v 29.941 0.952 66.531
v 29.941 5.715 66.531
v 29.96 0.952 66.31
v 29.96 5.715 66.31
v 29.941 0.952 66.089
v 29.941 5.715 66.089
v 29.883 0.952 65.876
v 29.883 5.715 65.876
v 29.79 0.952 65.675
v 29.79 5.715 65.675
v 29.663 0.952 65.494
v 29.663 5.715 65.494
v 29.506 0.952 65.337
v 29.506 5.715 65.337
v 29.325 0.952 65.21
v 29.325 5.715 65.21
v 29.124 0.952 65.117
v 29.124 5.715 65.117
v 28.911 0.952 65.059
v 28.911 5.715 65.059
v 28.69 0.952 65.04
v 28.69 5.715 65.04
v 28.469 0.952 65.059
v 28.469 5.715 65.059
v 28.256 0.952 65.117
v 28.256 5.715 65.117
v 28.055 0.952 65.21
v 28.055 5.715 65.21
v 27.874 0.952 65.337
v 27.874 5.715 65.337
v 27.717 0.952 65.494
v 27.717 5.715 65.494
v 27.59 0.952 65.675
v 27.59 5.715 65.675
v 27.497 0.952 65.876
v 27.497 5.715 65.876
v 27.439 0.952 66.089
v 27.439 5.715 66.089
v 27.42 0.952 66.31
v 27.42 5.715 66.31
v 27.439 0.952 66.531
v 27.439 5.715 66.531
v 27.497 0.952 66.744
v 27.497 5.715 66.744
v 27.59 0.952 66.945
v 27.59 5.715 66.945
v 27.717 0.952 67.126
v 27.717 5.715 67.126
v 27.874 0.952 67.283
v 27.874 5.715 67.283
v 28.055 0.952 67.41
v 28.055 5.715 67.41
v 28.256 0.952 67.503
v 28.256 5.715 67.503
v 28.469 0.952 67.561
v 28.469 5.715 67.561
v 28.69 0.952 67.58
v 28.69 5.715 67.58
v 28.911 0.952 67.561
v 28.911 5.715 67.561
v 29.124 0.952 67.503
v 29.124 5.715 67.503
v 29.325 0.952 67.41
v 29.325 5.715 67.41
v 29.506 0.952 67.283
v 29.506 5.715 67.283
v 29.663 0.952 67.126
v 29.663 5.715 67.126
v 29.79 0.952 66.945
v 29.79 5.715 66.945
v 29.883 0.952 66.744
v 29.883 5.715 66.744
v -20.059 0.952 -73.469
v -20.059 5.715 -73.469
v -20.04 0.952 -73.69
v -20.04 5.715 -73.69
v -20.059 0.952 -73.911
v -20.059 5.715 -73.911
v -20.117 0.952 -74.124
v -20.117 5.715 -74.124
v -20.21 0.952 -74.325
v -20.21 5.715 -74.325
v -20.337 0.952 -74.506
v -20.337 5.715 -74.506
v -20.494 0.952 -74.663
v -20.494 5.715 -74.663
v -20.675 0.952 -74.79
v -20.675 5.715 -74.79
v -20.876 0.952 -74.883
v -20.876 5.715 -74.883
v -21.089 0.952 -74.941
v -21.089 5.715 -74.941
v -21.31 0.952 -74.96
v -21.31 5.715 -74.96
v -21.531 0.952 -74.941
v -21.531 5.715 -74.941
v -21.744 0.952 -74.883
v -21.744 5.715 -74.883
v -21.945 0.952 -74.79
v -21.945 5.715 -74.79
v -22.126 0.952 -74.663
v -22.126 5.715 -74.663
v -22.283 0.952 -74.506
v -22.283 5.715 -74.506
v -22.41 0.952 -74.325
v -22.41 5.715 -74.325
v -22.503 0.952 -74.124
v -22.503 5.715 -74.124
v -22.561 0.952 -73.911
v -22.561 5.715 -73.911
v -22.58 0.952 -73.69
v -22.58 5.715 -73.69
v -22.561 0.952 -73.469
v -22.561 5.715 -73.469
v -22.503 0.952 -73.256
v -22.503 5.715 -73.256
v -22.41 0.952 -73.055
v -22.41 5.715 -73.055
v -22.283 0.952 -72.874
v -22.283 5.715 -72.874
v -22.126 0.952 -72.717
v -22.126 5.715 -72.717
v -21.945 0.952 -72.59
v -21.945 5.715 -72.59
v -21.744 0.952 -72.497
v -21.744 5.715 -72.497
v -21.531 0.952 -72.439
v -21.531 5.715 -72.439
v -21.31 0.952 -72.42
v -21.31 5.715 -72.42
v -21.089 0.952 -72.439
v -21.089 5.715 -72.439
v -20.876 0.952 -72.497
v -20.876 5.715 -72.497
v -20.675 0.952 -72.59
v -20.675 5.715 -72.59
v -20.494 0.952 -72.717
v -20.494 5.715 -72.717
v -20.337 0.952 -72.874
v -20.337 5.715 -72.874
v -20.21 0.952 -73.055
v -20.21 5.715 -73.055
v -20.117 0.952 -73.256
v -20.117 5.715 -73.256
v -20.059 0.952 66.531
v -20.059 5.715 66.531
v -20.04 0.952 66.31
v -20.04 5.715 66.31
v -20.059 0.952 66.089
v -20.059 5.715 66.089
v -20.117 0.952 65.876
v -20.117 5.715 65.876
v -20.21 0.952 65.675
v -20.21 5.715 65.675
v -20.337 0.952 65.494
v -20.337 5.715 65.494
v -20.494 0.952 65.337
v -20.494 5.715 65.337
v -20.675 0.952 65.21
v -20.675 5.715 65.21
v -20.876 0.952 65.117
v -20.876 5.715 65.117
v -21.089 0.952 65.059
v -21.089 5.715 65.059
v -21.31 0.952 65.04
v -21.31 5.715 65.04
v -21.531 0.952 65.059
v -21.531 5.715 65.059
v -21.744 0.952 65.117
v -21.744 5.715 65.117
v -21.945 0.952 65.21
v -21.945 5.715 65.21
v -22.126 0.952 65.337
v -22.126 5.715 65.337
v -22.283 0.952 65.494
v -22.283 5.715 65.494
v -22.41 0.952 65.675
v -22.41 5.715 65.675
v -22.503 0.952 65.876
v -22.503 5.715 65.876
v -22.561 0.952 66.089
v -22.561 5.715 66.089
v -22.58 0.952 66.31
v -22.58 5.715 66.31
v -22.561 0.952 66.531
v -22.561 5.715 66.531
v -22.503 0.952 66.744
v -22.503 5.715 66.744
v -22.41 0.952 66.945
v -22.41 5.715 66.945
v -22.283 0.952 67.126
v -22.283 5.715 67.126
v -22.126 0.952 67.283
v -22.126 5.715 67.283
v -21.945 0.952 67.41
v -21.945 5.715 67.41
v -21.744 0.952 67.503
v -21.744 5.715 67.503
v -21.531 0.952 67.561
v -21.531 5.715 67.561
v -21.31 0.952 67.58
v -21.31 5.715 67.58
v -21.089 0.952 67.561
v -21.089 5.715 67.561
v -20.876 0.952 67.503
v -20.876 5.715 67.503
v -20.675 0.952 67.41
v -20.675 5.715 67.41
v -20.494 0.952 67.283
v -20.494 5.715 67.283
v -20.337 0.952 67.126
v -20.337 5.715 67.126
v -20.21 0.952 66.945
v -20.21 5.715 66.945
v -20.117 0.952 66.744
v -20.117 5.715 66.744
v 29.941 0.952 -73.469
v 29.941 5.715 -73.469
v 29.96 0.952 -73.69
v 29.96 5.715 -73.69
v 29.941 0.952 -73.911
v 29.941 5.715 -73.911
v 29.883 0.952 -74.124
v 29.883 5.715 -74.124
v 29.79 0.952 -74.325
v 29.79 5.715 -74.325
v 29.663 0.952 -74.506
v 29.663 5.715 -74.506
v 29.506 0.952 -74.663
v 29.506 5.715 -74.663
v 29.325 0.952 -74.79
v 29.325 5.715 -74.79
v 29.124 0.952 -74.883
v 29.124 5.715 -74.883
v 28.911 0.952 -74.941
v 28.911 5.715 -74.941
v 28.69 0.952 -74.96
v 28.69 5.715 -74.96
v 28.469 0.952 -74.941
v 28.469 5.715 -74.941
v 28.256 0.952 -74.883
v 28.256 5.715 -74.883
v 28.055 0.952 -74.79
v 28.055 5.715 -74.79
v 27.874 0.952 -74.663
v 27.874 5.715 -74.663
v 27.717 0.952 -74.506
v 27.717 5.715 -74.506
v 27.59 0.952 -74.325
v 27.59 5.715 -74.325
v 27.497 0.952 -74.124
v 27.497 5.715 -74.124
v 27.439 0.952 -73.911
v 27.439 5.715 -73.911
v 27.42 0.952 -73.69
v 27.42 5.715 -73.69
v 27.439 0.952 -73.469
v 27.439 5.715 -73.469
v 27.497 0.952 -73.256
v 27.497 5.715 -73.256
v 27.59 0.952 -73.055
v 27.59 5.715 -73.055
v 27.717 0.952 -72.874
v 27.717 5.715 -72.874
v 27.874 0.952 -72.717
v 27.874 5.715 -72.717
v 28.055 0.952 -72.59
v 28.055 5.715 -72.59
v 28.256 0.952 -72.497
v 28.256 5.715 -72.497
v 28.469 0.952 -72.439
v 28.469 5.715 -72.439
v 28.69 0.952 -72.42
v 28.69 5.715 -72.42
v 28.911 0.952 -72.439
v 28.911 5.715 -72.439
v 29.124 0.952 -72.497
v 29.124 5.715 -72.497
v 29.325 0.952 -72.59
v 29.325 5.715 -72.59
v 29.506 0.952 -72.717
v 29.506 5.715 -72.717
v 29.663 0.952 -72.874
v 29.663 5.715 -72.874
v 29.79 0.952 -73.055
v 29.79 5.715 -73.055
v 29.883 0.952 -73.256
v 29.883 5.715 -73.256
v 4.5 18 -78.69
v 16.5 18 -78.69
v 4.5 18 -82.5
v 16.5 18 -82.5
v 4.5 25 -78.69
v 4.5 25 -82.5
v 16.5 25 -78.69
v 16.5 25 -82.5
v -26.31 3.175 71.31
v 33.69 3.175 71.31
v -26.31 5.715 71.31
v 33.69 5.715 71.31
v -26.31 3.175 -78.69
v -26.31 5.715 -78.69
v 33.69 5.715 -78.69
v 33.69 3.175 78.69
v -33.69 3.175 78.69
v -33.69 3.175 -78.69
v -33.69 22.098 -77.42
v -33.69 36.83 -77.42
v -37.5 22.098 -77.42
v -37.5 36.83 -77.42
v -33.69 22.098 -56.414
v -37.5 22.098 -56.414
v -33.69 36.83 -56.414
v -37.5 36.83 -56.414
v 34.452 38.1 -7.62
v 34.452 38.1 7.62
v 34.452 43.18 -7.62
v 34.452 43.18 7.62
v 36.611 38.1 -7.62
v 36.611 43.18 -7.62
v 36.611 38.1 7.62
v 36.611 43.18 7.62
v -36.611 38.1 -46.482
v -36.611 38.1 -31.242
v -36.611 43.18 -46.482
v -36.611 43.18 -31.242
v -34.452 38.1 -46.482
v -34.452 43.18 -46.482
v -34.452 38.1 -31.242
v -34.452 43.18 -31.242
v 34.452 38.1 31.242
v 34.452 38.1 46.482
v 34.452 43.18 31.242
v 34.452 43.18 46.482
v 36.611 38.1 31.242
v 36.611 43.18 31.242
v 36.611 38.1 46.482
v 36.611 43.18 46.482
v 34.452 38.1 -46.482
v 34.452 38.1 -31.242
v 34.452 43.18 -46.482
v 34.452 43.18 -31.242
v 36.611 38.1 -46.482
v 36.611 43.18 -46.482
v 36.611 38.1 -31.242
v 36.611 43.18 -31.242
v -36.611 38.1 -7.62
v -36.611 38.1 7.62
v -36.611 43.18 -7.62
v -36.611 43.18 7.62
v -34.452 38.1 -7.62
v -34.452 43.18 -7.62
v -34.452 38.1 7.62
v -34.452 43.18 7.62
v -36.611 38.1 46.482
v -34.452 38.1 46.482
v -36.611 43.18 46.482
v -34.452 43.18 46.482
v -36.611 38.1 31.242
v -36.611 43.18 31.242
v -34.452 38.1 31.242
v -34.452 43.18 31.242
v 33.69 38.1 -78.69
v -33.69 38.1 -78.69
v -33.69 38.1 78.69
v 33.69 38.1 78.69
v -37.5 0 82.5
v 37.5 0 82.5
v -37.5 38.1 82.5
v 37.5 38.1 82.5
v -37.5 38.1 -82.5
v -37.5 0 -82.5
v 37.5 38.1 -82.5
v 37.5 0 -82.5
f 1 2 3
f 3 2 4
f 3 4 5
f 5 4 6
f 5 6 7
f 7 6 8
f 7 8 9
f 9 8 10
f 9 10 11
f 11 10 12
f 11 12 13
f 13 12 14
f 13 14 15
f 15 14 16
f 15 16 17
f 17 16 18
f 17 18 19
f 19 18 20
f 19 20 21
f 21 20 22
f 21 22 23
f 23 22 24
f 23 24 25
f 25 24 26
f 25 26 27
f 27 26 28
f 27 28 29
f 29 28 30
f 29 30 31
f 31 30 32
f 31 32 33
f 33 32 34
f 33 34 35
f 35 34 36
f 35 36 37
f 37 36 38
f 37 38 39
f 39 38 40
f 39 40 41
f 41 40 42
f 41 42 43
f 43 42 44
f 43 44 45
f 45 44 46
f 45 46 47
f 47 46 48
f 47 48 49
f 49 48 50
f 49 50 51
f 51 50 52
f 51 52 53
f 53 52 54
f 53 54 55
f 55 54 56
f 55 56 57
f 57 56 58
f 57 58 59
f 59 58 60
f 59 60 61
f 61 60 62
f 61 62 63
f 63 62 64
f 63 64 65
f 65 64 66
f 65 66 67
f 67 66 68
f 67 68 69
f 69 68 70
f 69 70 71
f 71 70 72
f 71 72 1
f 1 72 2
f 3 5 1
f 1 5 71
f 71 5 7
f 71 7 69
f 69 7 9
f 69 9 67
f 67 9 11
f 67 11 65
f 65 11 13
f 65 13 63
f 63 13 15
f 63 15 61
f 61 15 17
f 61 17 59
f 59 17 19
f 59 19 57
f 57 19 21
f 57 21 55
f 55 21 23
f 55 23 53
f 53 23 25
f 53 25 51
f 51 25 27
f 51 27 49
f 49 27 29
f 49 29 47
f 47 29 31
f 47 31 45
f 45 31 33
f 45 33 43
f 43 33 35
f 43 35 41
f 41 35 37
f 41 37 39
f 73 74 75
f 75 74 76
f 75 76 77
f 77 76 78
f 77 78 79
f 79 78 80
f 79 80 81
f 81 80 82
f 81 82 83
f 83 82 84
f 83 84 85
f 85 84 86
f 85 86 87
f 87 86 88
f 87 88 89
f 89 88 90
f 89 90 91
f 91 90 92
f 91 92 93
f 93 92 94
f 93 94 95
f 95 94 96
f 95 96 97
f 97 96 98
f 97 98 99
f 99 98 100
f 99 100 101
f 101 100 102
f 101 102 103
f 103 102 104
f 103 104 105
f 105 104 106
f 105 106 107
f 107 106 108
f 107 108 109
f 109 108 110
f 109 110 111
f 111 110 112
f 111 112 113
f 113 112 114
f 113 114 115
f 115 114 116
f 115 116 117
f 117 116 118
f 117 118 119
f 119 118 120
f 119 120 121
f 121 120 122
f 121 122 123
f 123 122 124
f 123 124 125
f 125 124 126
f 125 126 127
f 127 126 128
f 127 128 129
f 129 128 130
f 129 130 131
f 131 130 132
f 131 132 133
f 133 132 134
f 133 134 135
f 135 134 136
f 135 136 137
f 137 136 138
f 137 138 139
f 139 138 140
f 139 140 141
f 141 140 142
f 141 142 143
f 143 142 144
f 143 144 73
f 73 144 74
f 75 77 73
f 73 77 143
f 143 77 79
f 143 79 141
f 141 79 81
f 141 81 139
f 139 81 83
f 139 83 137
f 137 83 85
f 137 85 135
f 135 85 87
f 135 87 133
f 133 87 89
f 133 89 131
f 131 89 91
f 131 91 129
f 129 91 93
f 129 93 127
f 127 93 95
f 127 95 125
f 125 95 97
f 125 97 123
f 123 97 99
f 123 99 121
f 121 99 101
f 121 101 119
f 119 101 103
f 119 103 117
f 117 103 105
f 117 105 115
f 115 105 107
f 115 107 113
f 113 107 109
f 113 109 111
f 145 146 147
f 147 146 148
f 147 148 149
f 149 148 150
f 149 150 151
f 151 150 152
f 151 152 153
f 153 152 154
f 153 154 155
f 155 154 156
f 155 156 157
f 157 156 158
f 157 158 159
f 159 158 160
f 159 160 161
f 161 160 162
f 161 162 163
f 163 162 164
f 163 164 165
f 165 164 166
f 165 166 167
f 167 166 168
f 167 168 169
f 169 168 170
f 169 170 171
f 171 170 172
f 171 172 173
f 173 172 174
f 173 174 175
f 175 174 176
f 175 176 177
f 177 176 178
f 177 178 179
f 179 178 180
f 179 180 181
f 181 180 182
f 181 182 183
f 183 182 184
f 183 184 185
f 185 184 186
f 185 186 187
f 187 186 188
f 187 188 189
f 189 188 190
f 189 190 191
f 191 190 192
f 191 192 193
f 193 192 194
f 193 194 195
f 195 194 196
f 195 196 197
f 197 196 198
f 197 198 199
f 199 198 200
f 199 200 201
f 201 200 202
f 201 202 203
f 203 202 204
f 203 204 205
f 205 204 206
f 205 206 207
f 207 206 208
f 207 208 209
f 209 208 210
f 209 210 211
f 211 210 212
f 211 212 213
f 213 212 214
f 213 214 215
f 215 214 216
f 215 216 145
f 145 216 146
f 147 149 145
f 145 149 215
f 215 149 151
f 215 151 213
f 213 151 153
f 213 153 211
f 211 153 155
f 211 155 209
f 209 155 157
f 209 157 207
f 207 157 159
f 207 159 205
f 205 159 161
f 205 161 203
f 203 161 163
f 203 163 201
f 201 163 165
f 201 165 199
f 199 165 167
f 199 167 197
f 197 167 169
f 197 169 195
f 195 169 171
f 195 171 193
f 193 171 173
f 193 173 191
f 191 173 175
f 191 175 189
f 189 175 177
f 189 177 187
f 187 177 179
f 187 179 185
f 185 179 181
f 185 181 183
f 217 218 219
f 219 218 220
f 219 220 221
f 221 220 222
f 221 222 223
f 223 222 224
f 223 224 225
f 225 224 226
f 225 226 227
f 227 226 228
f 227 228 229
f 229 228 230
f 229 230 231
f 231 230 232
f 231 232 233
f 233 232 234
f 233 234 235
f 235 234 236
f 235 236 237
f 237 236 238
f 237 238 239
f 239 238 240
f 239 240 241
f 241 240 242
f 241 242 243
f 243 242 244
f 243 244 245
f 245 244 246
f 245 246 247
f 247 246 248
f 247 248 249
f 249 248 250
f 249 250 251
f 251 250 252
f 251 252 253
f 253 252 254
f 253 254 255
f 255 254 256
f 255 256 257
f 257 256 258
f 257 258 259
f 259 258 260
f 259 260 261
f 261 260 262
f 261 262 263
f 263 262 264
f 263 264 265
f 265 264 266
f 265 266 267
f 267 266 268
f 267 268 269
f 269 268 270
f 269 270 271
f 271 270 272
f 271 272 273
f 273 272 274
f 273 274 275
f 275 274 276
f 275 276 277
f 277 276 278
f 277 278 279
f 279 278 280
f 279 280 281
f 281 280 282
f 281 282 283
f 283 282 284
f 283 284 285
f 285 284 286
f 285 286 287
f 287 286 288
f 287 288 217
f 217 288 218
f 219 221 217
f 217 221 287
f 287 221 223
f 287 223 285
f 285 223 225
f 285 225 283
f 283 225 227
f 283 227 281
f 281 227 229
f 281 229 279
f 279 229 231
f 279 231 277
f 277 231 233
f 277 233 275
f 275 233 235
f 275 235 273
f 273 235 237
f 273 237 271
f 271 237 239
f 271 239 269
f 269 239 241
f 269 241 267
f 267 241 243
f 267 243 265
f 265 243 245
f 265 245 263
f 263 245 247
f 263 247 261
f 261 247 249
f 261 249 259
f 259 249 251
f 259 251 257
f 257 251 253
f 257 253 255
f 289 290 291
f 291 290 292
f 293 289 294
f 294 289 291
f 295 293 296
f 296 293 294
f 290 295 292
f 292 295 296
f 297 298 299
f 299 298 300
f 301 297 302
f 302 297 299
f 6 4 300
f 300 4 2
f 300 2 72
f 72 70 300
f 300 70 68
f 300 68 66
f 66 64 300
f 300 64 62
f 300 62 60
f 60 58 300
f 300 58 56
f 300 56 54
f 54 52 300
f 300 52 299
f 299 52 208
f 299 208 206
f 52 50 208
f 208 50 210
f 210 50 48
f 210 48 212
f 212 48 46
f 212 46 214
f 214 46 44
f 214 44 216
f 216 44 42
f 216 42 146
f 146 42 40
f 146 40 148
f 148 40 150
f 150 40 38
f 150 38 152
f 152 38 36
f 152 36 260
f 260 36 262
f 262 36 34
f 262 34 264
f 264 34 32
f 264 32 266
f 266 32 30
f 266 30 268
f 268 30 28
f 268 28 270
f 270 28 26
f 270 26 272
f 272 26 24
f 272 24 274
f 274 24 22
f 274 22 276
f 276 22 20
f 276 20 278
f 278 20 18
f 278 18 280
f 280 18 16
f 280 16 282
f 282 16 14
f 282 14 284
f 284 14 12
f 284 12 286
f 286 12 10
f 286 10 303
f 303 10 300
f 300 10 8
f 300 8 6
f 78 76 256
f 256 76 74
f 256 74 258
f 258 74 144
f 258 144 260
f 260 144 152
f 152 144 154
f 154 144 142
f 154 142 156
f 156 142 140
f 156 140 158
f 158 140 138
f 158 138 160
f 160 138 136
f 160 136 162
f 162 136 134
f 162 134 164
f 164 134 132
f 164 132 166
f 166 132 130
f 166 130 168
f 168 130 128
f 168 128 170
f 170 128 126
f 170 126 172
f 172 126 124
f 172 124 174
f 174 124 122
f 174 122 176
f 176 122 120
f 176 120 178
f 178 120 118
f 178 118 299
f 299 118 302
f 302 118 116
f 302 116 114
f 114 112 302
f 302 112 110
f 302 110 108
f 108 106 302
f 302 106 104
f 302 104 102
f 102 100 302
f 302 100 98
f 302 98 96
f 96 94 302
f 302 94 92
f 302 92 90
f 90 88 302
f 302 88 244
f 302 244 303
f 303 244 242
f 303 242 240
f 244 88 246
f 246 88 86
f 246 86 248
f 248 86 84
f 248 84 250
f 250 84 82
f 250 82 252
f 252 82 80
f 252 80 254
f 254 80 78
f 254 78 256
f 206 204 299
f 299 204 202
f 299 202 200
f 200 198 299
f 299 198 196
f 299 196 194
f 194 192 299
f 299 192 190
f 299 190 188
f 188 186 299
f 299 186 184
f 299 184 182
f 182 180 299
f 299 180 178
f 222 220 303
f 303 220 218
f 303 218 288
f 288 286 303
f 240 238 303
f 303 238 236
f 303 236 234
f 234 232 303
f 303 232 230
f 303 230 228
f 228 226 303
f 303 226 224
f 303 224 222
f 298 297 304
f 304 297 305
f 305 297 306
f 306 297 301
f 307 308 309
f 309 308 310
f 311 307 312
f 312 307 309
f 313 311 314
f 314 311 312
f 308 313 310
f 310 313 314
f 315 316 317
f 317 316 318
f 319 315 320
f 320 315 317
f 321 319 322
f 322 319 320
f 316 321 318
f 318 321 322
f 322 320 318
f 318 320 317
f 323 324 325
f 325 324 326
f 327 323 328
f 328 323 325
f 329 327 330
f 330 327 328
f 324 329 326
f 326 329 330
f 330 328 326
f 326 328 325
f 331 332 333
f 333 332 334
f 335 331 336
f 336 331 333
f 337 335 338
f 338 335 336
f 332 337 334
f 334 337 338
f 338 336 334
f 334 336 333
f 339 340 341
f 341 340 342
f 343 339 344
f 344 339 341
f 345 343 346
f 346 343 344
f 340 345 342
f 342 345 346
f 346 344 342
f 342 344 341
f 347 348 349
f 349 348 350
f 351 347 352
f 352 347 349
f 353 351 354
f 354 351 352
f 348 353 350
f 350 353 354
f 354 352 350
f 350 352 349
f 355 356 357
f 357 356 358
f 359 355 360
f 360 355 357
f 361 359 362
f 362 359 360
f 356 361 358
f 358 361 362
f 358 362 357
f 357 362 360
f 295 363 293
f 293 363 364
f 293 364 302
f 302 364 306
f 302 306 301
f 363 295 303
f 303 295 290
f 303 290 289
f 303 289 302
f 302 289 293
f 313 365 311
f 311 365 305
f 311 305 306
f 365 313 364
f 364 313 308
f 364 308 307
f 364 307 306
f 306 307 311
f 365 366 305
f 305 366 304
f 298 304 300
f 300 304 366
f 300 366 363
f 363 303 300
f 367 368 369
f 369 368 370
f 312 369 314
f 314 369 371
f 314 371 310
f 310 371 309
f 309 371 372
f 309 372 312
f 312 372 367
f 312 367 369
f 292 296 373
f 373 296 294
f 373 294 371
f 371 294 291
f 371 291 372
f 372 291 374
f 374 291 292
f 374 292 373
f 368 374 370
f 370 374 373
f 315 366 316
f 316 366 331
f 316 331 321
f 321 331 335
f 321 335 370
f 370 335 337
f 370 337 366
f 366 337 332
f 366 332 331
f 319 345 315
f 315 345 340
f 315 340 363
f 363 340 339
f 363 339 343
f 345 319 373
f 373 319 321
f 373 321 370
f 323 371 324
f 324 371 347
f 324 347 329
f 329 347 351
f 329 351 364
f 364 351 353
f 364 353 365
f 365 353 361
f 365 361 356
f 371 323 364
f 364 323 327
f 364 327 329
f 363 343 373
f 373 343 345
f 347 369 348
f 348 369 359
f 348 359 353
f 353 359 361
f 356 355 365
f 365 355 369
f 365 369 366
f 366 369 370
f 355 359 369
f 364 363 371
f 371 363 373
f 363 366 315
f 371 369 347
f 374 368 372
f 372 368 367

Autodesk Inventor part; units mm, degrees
ref_plane "YZ Plane" through (0, 0, 0) normal (1, 0, 0) x (0, 1, 0)
ref_plane "XZ Plane" through (0, 0, 0) normal (0, 1, 0) x (-1, 0, 0)
ref_plane "XY Plane" through (0, 0, 0) normal (0, 0, 1) x (1, 0, 0)
sketch "Sketch1" plane through (0, 0, 0) normal (0, 1, 0) x (-1, 0, 0)
  line L0 (37.5, 82.5) -> (-37.5, 82.5)
  line L1 (-37.5, 82.5) -> (-37.5, -82.5)
  line L2 (-37.5, -82.5) -> (37.5, -82.5)
  line L3 (37.5, -82.5) -> (37.5, 82.5)
  point P0 (0, 0)
  point P1 (37.5, 0)
  point P2 (0, -82.5)
  dimension "d0" = 75
  dimension "d1" = 165
extrude "Extrusion1" add sketch "Sketch1" along normal blind 38.1
sketch "Sketch2" plane through (0, 38.1, 0) normal (0, 1, 0) x (1, 0, 0)
  line L0 (-33.69, -78.69) -> (33.69, -78.69)
  line L1 (33.69, -78.69) -> (33.69, 78.69)
  line L2 (33.69, 78.69) -> (-33.69, 78.69)
  line L3 (-33.69, 78.69) -> (-33.69, -78.69)
  line L4 (-37.5, 82.5) -> (-37.5, -82.5) projected
  line L5 (37.5, 82.5) -> (-37.5, 82.5) projected
  line L6 (37.5, -82.5) -> (37.5, 82.5) projected
  line L7 (-37.5, -82.5) -> (37.5, -82.5) projected
  point P0 (0, 0)
  dimension "d4" = 3.81
  dimension "d5" = 3.81
  dimension "d6" = 3.81
  dimension "d7" = 3.81
extrude "Extrusion2" cut sketch "Sketch2" against normal blind 34.925 contours L3 L2 L1 L0
sketch "Sketch3" plane through (0, 38.1, 0) normal (0, 1, 0) x (1, 0, 0)
  line L0 (-36.611, -46.482) -> (-36.611, -31.242)
  line L1 (-36.611, -31.242) -> (-34.452, -31.242)
  line L2 (-34.452, -31.242) -> (-34.452, -46.482)
  line L3 (-34.452, -46.482) -> (-36.611, -46.482)
  line L4 (-36.611, 31.242) -> (-36.611, 46.482)
  line L5 (-36.611, 46.482) -> (-34.452, 46.482)
  line L6 (-34.452, 46.482) -> (-34.452, 31.242)
  line L7 (-34.452, 31.242) -> (-36.611, 31.242)
  line L8 (-36.611, -7.62) -> (-36.611, 7.62)
  line L9 (-36.611, 7.62) -> (-34.452, 7.62)
  line L10 (-34.452, 7.62) -> (-34.452, -7.62)
  line L11 (-34.452, -7.62) -> (-36.611, -7.62)
  line L12 (-33.69, -78.69) -> (-33.69, 78.69) projected
  line L13 (0, -72.064) -> (0, 82.0809)
  line L14 (36.611, 46.482) -> (34.452, 46.482)
  line L15 (36.611, 7.62) -> (34.452, 7.62)
  line L16 (34.452, 7.62) -> (34.452, -7.62)
  line L17 (36.611, -7.62) -> (36.611, 7.62)
  line L18 (34.452, -7.62) -> (36.611, -7.62)
  line L19 (36.611, -46.482) -> (36.611, -31.242)
  line L20 (36.611, -31.242) -> (34.452, -31.242)
  line L21 (34.452, -31.242) -> (34.452, -46.482)
  line L22 (34.452, -46.482) -> (36.611, -46.482)
  line L23 (36.611, 31.242) -> (36.611, 46.482)
  line L24 (34.452, 46.482) -> (34.452, 31.242)
  line L25 (34.452, 31.242) -> (36.611, 31.242)
  point P0 (0, 0)
  point P1 (-35.5315, -31.242)
  point P2 (-35.5315, 31.242)
  point P3 (-35.5315, -7.62)
  point P4 (-35.5315, 7.62)
  point P5 (-34.452, 0)
  dimension "d10" = 2.159
  dimension "d11" = 2.159
  dimension "d12" = 2.159
  dimension "d13" = 23.622
  dimension "d14" = 23.622
  dimension "d15" = 15.24
  dimension "d16" = 15.24
  dimension "d17" = 15.24
  dimension "d18" = 0.762
  dimension "d19" = 0.762
  dimension "d20" = 0.762
extrude "Extrusion3" add sketch "Sketch3" along normal blind 5.08
sketch "Sketch12" plane through (-37.5, 0, -82.5) normal (-1, 0, 0) x (0, 0, 1)
  line L0 (5.08, 36.83) -> (26.0858, 36.83)
  line L1 (26.0858, 36.83) -> (26.0858, 22.098)
  line L2 (26.0858, 22.098) -> (5.08, 22.098)
  line L3 (5.08, 22.098) -> (5.08, 36.83)
  line L4 (0, 0) -> (0, 38.1) projected
  line L5 (0, 38.1) -> (165, 38.1) projected
  point P0 (82.5, 0)
  dimension "d85" = 14.732
  dimension "d86" = 21.0058
  dimension "d87" = 5.08
  dimension "d88" = 1.27
extrude "Extrusion10" cut sketch "Sketch12" against normal blind 13.0937
sketch "Sketch13" plane through (0, 3.175, 0) normal (0, 1, 0) x (1, 0, 0)
  line L0 (-33.69, 78.69) -> (33.69, 78.69) projected
  line L1 (-33.69, 78.69) -> (26.31, 78.69)
  line L2 (33.69, -71.31) -> (-26.31, -71.31)
  line L3 (-26.31, -71.31) -> (-26.31, 78.69)
  line L4 (-26.31, 78.69) -> (33.69, 78.69)
  line L5 (33.69, 78.69) -> (33.69, -71.31)
  line L6 (33.69, 78.69) -> (33.69, -78.69) projected
  point P0 (0, 0)
  point P1 (33.69, 3.69)
  point P2 (33.69, 0)
  dimension "d93" = 150
  dimension "d94" = 60
extrude "Extrusion11" add sketch "Sketch13" along normal blind 2.54
sketch "Sketch14" plane through (0, 5.715, 0) normal (0, 1, 0) x (1, 0, 0)
  circle A0 centre (-16.3328, 52.2995) radius 1.27
  circle A1 centre (21.5397, 52.2995) radius 1.27
  circle A2 centre (-16.3328, -48.2599) radius 1.27
  circle A3 centre (21.5397, -48.2599) radius 1.27
  line L0 (-33.69, 78.69) -> (33.69, 78.69) projected
  point P0 (0, 0)
  dimension "d97" = 2.54
  dimension "d98" = 2.54
  dimension "d99" = 2.54
  dimension "d100" = 2.54
  dimension "d101" = 26.3905
sketch "Sketch15" plane through (37.5, 0, -82.5) normal (0, 0, -1) x (-1, 0, 0)
  line L0 (21, 18) -> (33, 18)
  line L1 (33, 18) -> (33, 25)
  line L2 (33, 25) -> (21, 25)
  line L3 (21, 25) -> (21, 18)
  line L4 (0, 0) -> (0, 38.1) projected
  line L5 (0, 0) -> (75, 0) projected
  line L6 (0, 38.1) -> (75, 38.1) projected
  point P0 (37.5, 0)
  point P1 (27, 25)
  dimension "d104" = 12
  dimension "d105" = 7
  dimension "d120" = 21
  dimension "d121" = 18
extrude "Extrusion12" cut sketch "Sketch15" against normal blind 39.0525
sketch "Sketch16" plane through (0, 5.715, 0) normal (0, 1, 0) x (1, 0, 0)
  circle A0 centre (28.69, -66.31) radius 1.27
  circle A1 centre (-21.31, -66.31) radius 1.27
  circle A2 centre (28.69, 73.69) radius 1.27
  circle A3 centre (-21.31, 73.69) radius 1.27
  line L0 (33.69, 78.69) -> (33.69, -78.69) projected
  line L1 (-33.69, 78.69) -> (33.69, 78.69) projected
  line L2 (-26.31, 78.69) -> (-26.31, -71.31) projected
  line L3 (-26.31, -71.31) -> (33.69, -71.31) projected
  point P0 (0, 0)
  dimension "d108" = 2.54
  dimension "d109" = 5
  dimension "d110" = 5
  dimension "d111" = 5
  dimension "d112" = 5
  dimension "d113" = 5
  dimension "d114" = 5
  dimension "d115" = 5
  dimension "d116" = 5
  dimension "d122" = 2.54
extrude "Extrusion13" cut sketch "Sketch16" against normal blind 4.7625 contours A0 | A1 | A2 | A3
properties part number "tapaderaf"
